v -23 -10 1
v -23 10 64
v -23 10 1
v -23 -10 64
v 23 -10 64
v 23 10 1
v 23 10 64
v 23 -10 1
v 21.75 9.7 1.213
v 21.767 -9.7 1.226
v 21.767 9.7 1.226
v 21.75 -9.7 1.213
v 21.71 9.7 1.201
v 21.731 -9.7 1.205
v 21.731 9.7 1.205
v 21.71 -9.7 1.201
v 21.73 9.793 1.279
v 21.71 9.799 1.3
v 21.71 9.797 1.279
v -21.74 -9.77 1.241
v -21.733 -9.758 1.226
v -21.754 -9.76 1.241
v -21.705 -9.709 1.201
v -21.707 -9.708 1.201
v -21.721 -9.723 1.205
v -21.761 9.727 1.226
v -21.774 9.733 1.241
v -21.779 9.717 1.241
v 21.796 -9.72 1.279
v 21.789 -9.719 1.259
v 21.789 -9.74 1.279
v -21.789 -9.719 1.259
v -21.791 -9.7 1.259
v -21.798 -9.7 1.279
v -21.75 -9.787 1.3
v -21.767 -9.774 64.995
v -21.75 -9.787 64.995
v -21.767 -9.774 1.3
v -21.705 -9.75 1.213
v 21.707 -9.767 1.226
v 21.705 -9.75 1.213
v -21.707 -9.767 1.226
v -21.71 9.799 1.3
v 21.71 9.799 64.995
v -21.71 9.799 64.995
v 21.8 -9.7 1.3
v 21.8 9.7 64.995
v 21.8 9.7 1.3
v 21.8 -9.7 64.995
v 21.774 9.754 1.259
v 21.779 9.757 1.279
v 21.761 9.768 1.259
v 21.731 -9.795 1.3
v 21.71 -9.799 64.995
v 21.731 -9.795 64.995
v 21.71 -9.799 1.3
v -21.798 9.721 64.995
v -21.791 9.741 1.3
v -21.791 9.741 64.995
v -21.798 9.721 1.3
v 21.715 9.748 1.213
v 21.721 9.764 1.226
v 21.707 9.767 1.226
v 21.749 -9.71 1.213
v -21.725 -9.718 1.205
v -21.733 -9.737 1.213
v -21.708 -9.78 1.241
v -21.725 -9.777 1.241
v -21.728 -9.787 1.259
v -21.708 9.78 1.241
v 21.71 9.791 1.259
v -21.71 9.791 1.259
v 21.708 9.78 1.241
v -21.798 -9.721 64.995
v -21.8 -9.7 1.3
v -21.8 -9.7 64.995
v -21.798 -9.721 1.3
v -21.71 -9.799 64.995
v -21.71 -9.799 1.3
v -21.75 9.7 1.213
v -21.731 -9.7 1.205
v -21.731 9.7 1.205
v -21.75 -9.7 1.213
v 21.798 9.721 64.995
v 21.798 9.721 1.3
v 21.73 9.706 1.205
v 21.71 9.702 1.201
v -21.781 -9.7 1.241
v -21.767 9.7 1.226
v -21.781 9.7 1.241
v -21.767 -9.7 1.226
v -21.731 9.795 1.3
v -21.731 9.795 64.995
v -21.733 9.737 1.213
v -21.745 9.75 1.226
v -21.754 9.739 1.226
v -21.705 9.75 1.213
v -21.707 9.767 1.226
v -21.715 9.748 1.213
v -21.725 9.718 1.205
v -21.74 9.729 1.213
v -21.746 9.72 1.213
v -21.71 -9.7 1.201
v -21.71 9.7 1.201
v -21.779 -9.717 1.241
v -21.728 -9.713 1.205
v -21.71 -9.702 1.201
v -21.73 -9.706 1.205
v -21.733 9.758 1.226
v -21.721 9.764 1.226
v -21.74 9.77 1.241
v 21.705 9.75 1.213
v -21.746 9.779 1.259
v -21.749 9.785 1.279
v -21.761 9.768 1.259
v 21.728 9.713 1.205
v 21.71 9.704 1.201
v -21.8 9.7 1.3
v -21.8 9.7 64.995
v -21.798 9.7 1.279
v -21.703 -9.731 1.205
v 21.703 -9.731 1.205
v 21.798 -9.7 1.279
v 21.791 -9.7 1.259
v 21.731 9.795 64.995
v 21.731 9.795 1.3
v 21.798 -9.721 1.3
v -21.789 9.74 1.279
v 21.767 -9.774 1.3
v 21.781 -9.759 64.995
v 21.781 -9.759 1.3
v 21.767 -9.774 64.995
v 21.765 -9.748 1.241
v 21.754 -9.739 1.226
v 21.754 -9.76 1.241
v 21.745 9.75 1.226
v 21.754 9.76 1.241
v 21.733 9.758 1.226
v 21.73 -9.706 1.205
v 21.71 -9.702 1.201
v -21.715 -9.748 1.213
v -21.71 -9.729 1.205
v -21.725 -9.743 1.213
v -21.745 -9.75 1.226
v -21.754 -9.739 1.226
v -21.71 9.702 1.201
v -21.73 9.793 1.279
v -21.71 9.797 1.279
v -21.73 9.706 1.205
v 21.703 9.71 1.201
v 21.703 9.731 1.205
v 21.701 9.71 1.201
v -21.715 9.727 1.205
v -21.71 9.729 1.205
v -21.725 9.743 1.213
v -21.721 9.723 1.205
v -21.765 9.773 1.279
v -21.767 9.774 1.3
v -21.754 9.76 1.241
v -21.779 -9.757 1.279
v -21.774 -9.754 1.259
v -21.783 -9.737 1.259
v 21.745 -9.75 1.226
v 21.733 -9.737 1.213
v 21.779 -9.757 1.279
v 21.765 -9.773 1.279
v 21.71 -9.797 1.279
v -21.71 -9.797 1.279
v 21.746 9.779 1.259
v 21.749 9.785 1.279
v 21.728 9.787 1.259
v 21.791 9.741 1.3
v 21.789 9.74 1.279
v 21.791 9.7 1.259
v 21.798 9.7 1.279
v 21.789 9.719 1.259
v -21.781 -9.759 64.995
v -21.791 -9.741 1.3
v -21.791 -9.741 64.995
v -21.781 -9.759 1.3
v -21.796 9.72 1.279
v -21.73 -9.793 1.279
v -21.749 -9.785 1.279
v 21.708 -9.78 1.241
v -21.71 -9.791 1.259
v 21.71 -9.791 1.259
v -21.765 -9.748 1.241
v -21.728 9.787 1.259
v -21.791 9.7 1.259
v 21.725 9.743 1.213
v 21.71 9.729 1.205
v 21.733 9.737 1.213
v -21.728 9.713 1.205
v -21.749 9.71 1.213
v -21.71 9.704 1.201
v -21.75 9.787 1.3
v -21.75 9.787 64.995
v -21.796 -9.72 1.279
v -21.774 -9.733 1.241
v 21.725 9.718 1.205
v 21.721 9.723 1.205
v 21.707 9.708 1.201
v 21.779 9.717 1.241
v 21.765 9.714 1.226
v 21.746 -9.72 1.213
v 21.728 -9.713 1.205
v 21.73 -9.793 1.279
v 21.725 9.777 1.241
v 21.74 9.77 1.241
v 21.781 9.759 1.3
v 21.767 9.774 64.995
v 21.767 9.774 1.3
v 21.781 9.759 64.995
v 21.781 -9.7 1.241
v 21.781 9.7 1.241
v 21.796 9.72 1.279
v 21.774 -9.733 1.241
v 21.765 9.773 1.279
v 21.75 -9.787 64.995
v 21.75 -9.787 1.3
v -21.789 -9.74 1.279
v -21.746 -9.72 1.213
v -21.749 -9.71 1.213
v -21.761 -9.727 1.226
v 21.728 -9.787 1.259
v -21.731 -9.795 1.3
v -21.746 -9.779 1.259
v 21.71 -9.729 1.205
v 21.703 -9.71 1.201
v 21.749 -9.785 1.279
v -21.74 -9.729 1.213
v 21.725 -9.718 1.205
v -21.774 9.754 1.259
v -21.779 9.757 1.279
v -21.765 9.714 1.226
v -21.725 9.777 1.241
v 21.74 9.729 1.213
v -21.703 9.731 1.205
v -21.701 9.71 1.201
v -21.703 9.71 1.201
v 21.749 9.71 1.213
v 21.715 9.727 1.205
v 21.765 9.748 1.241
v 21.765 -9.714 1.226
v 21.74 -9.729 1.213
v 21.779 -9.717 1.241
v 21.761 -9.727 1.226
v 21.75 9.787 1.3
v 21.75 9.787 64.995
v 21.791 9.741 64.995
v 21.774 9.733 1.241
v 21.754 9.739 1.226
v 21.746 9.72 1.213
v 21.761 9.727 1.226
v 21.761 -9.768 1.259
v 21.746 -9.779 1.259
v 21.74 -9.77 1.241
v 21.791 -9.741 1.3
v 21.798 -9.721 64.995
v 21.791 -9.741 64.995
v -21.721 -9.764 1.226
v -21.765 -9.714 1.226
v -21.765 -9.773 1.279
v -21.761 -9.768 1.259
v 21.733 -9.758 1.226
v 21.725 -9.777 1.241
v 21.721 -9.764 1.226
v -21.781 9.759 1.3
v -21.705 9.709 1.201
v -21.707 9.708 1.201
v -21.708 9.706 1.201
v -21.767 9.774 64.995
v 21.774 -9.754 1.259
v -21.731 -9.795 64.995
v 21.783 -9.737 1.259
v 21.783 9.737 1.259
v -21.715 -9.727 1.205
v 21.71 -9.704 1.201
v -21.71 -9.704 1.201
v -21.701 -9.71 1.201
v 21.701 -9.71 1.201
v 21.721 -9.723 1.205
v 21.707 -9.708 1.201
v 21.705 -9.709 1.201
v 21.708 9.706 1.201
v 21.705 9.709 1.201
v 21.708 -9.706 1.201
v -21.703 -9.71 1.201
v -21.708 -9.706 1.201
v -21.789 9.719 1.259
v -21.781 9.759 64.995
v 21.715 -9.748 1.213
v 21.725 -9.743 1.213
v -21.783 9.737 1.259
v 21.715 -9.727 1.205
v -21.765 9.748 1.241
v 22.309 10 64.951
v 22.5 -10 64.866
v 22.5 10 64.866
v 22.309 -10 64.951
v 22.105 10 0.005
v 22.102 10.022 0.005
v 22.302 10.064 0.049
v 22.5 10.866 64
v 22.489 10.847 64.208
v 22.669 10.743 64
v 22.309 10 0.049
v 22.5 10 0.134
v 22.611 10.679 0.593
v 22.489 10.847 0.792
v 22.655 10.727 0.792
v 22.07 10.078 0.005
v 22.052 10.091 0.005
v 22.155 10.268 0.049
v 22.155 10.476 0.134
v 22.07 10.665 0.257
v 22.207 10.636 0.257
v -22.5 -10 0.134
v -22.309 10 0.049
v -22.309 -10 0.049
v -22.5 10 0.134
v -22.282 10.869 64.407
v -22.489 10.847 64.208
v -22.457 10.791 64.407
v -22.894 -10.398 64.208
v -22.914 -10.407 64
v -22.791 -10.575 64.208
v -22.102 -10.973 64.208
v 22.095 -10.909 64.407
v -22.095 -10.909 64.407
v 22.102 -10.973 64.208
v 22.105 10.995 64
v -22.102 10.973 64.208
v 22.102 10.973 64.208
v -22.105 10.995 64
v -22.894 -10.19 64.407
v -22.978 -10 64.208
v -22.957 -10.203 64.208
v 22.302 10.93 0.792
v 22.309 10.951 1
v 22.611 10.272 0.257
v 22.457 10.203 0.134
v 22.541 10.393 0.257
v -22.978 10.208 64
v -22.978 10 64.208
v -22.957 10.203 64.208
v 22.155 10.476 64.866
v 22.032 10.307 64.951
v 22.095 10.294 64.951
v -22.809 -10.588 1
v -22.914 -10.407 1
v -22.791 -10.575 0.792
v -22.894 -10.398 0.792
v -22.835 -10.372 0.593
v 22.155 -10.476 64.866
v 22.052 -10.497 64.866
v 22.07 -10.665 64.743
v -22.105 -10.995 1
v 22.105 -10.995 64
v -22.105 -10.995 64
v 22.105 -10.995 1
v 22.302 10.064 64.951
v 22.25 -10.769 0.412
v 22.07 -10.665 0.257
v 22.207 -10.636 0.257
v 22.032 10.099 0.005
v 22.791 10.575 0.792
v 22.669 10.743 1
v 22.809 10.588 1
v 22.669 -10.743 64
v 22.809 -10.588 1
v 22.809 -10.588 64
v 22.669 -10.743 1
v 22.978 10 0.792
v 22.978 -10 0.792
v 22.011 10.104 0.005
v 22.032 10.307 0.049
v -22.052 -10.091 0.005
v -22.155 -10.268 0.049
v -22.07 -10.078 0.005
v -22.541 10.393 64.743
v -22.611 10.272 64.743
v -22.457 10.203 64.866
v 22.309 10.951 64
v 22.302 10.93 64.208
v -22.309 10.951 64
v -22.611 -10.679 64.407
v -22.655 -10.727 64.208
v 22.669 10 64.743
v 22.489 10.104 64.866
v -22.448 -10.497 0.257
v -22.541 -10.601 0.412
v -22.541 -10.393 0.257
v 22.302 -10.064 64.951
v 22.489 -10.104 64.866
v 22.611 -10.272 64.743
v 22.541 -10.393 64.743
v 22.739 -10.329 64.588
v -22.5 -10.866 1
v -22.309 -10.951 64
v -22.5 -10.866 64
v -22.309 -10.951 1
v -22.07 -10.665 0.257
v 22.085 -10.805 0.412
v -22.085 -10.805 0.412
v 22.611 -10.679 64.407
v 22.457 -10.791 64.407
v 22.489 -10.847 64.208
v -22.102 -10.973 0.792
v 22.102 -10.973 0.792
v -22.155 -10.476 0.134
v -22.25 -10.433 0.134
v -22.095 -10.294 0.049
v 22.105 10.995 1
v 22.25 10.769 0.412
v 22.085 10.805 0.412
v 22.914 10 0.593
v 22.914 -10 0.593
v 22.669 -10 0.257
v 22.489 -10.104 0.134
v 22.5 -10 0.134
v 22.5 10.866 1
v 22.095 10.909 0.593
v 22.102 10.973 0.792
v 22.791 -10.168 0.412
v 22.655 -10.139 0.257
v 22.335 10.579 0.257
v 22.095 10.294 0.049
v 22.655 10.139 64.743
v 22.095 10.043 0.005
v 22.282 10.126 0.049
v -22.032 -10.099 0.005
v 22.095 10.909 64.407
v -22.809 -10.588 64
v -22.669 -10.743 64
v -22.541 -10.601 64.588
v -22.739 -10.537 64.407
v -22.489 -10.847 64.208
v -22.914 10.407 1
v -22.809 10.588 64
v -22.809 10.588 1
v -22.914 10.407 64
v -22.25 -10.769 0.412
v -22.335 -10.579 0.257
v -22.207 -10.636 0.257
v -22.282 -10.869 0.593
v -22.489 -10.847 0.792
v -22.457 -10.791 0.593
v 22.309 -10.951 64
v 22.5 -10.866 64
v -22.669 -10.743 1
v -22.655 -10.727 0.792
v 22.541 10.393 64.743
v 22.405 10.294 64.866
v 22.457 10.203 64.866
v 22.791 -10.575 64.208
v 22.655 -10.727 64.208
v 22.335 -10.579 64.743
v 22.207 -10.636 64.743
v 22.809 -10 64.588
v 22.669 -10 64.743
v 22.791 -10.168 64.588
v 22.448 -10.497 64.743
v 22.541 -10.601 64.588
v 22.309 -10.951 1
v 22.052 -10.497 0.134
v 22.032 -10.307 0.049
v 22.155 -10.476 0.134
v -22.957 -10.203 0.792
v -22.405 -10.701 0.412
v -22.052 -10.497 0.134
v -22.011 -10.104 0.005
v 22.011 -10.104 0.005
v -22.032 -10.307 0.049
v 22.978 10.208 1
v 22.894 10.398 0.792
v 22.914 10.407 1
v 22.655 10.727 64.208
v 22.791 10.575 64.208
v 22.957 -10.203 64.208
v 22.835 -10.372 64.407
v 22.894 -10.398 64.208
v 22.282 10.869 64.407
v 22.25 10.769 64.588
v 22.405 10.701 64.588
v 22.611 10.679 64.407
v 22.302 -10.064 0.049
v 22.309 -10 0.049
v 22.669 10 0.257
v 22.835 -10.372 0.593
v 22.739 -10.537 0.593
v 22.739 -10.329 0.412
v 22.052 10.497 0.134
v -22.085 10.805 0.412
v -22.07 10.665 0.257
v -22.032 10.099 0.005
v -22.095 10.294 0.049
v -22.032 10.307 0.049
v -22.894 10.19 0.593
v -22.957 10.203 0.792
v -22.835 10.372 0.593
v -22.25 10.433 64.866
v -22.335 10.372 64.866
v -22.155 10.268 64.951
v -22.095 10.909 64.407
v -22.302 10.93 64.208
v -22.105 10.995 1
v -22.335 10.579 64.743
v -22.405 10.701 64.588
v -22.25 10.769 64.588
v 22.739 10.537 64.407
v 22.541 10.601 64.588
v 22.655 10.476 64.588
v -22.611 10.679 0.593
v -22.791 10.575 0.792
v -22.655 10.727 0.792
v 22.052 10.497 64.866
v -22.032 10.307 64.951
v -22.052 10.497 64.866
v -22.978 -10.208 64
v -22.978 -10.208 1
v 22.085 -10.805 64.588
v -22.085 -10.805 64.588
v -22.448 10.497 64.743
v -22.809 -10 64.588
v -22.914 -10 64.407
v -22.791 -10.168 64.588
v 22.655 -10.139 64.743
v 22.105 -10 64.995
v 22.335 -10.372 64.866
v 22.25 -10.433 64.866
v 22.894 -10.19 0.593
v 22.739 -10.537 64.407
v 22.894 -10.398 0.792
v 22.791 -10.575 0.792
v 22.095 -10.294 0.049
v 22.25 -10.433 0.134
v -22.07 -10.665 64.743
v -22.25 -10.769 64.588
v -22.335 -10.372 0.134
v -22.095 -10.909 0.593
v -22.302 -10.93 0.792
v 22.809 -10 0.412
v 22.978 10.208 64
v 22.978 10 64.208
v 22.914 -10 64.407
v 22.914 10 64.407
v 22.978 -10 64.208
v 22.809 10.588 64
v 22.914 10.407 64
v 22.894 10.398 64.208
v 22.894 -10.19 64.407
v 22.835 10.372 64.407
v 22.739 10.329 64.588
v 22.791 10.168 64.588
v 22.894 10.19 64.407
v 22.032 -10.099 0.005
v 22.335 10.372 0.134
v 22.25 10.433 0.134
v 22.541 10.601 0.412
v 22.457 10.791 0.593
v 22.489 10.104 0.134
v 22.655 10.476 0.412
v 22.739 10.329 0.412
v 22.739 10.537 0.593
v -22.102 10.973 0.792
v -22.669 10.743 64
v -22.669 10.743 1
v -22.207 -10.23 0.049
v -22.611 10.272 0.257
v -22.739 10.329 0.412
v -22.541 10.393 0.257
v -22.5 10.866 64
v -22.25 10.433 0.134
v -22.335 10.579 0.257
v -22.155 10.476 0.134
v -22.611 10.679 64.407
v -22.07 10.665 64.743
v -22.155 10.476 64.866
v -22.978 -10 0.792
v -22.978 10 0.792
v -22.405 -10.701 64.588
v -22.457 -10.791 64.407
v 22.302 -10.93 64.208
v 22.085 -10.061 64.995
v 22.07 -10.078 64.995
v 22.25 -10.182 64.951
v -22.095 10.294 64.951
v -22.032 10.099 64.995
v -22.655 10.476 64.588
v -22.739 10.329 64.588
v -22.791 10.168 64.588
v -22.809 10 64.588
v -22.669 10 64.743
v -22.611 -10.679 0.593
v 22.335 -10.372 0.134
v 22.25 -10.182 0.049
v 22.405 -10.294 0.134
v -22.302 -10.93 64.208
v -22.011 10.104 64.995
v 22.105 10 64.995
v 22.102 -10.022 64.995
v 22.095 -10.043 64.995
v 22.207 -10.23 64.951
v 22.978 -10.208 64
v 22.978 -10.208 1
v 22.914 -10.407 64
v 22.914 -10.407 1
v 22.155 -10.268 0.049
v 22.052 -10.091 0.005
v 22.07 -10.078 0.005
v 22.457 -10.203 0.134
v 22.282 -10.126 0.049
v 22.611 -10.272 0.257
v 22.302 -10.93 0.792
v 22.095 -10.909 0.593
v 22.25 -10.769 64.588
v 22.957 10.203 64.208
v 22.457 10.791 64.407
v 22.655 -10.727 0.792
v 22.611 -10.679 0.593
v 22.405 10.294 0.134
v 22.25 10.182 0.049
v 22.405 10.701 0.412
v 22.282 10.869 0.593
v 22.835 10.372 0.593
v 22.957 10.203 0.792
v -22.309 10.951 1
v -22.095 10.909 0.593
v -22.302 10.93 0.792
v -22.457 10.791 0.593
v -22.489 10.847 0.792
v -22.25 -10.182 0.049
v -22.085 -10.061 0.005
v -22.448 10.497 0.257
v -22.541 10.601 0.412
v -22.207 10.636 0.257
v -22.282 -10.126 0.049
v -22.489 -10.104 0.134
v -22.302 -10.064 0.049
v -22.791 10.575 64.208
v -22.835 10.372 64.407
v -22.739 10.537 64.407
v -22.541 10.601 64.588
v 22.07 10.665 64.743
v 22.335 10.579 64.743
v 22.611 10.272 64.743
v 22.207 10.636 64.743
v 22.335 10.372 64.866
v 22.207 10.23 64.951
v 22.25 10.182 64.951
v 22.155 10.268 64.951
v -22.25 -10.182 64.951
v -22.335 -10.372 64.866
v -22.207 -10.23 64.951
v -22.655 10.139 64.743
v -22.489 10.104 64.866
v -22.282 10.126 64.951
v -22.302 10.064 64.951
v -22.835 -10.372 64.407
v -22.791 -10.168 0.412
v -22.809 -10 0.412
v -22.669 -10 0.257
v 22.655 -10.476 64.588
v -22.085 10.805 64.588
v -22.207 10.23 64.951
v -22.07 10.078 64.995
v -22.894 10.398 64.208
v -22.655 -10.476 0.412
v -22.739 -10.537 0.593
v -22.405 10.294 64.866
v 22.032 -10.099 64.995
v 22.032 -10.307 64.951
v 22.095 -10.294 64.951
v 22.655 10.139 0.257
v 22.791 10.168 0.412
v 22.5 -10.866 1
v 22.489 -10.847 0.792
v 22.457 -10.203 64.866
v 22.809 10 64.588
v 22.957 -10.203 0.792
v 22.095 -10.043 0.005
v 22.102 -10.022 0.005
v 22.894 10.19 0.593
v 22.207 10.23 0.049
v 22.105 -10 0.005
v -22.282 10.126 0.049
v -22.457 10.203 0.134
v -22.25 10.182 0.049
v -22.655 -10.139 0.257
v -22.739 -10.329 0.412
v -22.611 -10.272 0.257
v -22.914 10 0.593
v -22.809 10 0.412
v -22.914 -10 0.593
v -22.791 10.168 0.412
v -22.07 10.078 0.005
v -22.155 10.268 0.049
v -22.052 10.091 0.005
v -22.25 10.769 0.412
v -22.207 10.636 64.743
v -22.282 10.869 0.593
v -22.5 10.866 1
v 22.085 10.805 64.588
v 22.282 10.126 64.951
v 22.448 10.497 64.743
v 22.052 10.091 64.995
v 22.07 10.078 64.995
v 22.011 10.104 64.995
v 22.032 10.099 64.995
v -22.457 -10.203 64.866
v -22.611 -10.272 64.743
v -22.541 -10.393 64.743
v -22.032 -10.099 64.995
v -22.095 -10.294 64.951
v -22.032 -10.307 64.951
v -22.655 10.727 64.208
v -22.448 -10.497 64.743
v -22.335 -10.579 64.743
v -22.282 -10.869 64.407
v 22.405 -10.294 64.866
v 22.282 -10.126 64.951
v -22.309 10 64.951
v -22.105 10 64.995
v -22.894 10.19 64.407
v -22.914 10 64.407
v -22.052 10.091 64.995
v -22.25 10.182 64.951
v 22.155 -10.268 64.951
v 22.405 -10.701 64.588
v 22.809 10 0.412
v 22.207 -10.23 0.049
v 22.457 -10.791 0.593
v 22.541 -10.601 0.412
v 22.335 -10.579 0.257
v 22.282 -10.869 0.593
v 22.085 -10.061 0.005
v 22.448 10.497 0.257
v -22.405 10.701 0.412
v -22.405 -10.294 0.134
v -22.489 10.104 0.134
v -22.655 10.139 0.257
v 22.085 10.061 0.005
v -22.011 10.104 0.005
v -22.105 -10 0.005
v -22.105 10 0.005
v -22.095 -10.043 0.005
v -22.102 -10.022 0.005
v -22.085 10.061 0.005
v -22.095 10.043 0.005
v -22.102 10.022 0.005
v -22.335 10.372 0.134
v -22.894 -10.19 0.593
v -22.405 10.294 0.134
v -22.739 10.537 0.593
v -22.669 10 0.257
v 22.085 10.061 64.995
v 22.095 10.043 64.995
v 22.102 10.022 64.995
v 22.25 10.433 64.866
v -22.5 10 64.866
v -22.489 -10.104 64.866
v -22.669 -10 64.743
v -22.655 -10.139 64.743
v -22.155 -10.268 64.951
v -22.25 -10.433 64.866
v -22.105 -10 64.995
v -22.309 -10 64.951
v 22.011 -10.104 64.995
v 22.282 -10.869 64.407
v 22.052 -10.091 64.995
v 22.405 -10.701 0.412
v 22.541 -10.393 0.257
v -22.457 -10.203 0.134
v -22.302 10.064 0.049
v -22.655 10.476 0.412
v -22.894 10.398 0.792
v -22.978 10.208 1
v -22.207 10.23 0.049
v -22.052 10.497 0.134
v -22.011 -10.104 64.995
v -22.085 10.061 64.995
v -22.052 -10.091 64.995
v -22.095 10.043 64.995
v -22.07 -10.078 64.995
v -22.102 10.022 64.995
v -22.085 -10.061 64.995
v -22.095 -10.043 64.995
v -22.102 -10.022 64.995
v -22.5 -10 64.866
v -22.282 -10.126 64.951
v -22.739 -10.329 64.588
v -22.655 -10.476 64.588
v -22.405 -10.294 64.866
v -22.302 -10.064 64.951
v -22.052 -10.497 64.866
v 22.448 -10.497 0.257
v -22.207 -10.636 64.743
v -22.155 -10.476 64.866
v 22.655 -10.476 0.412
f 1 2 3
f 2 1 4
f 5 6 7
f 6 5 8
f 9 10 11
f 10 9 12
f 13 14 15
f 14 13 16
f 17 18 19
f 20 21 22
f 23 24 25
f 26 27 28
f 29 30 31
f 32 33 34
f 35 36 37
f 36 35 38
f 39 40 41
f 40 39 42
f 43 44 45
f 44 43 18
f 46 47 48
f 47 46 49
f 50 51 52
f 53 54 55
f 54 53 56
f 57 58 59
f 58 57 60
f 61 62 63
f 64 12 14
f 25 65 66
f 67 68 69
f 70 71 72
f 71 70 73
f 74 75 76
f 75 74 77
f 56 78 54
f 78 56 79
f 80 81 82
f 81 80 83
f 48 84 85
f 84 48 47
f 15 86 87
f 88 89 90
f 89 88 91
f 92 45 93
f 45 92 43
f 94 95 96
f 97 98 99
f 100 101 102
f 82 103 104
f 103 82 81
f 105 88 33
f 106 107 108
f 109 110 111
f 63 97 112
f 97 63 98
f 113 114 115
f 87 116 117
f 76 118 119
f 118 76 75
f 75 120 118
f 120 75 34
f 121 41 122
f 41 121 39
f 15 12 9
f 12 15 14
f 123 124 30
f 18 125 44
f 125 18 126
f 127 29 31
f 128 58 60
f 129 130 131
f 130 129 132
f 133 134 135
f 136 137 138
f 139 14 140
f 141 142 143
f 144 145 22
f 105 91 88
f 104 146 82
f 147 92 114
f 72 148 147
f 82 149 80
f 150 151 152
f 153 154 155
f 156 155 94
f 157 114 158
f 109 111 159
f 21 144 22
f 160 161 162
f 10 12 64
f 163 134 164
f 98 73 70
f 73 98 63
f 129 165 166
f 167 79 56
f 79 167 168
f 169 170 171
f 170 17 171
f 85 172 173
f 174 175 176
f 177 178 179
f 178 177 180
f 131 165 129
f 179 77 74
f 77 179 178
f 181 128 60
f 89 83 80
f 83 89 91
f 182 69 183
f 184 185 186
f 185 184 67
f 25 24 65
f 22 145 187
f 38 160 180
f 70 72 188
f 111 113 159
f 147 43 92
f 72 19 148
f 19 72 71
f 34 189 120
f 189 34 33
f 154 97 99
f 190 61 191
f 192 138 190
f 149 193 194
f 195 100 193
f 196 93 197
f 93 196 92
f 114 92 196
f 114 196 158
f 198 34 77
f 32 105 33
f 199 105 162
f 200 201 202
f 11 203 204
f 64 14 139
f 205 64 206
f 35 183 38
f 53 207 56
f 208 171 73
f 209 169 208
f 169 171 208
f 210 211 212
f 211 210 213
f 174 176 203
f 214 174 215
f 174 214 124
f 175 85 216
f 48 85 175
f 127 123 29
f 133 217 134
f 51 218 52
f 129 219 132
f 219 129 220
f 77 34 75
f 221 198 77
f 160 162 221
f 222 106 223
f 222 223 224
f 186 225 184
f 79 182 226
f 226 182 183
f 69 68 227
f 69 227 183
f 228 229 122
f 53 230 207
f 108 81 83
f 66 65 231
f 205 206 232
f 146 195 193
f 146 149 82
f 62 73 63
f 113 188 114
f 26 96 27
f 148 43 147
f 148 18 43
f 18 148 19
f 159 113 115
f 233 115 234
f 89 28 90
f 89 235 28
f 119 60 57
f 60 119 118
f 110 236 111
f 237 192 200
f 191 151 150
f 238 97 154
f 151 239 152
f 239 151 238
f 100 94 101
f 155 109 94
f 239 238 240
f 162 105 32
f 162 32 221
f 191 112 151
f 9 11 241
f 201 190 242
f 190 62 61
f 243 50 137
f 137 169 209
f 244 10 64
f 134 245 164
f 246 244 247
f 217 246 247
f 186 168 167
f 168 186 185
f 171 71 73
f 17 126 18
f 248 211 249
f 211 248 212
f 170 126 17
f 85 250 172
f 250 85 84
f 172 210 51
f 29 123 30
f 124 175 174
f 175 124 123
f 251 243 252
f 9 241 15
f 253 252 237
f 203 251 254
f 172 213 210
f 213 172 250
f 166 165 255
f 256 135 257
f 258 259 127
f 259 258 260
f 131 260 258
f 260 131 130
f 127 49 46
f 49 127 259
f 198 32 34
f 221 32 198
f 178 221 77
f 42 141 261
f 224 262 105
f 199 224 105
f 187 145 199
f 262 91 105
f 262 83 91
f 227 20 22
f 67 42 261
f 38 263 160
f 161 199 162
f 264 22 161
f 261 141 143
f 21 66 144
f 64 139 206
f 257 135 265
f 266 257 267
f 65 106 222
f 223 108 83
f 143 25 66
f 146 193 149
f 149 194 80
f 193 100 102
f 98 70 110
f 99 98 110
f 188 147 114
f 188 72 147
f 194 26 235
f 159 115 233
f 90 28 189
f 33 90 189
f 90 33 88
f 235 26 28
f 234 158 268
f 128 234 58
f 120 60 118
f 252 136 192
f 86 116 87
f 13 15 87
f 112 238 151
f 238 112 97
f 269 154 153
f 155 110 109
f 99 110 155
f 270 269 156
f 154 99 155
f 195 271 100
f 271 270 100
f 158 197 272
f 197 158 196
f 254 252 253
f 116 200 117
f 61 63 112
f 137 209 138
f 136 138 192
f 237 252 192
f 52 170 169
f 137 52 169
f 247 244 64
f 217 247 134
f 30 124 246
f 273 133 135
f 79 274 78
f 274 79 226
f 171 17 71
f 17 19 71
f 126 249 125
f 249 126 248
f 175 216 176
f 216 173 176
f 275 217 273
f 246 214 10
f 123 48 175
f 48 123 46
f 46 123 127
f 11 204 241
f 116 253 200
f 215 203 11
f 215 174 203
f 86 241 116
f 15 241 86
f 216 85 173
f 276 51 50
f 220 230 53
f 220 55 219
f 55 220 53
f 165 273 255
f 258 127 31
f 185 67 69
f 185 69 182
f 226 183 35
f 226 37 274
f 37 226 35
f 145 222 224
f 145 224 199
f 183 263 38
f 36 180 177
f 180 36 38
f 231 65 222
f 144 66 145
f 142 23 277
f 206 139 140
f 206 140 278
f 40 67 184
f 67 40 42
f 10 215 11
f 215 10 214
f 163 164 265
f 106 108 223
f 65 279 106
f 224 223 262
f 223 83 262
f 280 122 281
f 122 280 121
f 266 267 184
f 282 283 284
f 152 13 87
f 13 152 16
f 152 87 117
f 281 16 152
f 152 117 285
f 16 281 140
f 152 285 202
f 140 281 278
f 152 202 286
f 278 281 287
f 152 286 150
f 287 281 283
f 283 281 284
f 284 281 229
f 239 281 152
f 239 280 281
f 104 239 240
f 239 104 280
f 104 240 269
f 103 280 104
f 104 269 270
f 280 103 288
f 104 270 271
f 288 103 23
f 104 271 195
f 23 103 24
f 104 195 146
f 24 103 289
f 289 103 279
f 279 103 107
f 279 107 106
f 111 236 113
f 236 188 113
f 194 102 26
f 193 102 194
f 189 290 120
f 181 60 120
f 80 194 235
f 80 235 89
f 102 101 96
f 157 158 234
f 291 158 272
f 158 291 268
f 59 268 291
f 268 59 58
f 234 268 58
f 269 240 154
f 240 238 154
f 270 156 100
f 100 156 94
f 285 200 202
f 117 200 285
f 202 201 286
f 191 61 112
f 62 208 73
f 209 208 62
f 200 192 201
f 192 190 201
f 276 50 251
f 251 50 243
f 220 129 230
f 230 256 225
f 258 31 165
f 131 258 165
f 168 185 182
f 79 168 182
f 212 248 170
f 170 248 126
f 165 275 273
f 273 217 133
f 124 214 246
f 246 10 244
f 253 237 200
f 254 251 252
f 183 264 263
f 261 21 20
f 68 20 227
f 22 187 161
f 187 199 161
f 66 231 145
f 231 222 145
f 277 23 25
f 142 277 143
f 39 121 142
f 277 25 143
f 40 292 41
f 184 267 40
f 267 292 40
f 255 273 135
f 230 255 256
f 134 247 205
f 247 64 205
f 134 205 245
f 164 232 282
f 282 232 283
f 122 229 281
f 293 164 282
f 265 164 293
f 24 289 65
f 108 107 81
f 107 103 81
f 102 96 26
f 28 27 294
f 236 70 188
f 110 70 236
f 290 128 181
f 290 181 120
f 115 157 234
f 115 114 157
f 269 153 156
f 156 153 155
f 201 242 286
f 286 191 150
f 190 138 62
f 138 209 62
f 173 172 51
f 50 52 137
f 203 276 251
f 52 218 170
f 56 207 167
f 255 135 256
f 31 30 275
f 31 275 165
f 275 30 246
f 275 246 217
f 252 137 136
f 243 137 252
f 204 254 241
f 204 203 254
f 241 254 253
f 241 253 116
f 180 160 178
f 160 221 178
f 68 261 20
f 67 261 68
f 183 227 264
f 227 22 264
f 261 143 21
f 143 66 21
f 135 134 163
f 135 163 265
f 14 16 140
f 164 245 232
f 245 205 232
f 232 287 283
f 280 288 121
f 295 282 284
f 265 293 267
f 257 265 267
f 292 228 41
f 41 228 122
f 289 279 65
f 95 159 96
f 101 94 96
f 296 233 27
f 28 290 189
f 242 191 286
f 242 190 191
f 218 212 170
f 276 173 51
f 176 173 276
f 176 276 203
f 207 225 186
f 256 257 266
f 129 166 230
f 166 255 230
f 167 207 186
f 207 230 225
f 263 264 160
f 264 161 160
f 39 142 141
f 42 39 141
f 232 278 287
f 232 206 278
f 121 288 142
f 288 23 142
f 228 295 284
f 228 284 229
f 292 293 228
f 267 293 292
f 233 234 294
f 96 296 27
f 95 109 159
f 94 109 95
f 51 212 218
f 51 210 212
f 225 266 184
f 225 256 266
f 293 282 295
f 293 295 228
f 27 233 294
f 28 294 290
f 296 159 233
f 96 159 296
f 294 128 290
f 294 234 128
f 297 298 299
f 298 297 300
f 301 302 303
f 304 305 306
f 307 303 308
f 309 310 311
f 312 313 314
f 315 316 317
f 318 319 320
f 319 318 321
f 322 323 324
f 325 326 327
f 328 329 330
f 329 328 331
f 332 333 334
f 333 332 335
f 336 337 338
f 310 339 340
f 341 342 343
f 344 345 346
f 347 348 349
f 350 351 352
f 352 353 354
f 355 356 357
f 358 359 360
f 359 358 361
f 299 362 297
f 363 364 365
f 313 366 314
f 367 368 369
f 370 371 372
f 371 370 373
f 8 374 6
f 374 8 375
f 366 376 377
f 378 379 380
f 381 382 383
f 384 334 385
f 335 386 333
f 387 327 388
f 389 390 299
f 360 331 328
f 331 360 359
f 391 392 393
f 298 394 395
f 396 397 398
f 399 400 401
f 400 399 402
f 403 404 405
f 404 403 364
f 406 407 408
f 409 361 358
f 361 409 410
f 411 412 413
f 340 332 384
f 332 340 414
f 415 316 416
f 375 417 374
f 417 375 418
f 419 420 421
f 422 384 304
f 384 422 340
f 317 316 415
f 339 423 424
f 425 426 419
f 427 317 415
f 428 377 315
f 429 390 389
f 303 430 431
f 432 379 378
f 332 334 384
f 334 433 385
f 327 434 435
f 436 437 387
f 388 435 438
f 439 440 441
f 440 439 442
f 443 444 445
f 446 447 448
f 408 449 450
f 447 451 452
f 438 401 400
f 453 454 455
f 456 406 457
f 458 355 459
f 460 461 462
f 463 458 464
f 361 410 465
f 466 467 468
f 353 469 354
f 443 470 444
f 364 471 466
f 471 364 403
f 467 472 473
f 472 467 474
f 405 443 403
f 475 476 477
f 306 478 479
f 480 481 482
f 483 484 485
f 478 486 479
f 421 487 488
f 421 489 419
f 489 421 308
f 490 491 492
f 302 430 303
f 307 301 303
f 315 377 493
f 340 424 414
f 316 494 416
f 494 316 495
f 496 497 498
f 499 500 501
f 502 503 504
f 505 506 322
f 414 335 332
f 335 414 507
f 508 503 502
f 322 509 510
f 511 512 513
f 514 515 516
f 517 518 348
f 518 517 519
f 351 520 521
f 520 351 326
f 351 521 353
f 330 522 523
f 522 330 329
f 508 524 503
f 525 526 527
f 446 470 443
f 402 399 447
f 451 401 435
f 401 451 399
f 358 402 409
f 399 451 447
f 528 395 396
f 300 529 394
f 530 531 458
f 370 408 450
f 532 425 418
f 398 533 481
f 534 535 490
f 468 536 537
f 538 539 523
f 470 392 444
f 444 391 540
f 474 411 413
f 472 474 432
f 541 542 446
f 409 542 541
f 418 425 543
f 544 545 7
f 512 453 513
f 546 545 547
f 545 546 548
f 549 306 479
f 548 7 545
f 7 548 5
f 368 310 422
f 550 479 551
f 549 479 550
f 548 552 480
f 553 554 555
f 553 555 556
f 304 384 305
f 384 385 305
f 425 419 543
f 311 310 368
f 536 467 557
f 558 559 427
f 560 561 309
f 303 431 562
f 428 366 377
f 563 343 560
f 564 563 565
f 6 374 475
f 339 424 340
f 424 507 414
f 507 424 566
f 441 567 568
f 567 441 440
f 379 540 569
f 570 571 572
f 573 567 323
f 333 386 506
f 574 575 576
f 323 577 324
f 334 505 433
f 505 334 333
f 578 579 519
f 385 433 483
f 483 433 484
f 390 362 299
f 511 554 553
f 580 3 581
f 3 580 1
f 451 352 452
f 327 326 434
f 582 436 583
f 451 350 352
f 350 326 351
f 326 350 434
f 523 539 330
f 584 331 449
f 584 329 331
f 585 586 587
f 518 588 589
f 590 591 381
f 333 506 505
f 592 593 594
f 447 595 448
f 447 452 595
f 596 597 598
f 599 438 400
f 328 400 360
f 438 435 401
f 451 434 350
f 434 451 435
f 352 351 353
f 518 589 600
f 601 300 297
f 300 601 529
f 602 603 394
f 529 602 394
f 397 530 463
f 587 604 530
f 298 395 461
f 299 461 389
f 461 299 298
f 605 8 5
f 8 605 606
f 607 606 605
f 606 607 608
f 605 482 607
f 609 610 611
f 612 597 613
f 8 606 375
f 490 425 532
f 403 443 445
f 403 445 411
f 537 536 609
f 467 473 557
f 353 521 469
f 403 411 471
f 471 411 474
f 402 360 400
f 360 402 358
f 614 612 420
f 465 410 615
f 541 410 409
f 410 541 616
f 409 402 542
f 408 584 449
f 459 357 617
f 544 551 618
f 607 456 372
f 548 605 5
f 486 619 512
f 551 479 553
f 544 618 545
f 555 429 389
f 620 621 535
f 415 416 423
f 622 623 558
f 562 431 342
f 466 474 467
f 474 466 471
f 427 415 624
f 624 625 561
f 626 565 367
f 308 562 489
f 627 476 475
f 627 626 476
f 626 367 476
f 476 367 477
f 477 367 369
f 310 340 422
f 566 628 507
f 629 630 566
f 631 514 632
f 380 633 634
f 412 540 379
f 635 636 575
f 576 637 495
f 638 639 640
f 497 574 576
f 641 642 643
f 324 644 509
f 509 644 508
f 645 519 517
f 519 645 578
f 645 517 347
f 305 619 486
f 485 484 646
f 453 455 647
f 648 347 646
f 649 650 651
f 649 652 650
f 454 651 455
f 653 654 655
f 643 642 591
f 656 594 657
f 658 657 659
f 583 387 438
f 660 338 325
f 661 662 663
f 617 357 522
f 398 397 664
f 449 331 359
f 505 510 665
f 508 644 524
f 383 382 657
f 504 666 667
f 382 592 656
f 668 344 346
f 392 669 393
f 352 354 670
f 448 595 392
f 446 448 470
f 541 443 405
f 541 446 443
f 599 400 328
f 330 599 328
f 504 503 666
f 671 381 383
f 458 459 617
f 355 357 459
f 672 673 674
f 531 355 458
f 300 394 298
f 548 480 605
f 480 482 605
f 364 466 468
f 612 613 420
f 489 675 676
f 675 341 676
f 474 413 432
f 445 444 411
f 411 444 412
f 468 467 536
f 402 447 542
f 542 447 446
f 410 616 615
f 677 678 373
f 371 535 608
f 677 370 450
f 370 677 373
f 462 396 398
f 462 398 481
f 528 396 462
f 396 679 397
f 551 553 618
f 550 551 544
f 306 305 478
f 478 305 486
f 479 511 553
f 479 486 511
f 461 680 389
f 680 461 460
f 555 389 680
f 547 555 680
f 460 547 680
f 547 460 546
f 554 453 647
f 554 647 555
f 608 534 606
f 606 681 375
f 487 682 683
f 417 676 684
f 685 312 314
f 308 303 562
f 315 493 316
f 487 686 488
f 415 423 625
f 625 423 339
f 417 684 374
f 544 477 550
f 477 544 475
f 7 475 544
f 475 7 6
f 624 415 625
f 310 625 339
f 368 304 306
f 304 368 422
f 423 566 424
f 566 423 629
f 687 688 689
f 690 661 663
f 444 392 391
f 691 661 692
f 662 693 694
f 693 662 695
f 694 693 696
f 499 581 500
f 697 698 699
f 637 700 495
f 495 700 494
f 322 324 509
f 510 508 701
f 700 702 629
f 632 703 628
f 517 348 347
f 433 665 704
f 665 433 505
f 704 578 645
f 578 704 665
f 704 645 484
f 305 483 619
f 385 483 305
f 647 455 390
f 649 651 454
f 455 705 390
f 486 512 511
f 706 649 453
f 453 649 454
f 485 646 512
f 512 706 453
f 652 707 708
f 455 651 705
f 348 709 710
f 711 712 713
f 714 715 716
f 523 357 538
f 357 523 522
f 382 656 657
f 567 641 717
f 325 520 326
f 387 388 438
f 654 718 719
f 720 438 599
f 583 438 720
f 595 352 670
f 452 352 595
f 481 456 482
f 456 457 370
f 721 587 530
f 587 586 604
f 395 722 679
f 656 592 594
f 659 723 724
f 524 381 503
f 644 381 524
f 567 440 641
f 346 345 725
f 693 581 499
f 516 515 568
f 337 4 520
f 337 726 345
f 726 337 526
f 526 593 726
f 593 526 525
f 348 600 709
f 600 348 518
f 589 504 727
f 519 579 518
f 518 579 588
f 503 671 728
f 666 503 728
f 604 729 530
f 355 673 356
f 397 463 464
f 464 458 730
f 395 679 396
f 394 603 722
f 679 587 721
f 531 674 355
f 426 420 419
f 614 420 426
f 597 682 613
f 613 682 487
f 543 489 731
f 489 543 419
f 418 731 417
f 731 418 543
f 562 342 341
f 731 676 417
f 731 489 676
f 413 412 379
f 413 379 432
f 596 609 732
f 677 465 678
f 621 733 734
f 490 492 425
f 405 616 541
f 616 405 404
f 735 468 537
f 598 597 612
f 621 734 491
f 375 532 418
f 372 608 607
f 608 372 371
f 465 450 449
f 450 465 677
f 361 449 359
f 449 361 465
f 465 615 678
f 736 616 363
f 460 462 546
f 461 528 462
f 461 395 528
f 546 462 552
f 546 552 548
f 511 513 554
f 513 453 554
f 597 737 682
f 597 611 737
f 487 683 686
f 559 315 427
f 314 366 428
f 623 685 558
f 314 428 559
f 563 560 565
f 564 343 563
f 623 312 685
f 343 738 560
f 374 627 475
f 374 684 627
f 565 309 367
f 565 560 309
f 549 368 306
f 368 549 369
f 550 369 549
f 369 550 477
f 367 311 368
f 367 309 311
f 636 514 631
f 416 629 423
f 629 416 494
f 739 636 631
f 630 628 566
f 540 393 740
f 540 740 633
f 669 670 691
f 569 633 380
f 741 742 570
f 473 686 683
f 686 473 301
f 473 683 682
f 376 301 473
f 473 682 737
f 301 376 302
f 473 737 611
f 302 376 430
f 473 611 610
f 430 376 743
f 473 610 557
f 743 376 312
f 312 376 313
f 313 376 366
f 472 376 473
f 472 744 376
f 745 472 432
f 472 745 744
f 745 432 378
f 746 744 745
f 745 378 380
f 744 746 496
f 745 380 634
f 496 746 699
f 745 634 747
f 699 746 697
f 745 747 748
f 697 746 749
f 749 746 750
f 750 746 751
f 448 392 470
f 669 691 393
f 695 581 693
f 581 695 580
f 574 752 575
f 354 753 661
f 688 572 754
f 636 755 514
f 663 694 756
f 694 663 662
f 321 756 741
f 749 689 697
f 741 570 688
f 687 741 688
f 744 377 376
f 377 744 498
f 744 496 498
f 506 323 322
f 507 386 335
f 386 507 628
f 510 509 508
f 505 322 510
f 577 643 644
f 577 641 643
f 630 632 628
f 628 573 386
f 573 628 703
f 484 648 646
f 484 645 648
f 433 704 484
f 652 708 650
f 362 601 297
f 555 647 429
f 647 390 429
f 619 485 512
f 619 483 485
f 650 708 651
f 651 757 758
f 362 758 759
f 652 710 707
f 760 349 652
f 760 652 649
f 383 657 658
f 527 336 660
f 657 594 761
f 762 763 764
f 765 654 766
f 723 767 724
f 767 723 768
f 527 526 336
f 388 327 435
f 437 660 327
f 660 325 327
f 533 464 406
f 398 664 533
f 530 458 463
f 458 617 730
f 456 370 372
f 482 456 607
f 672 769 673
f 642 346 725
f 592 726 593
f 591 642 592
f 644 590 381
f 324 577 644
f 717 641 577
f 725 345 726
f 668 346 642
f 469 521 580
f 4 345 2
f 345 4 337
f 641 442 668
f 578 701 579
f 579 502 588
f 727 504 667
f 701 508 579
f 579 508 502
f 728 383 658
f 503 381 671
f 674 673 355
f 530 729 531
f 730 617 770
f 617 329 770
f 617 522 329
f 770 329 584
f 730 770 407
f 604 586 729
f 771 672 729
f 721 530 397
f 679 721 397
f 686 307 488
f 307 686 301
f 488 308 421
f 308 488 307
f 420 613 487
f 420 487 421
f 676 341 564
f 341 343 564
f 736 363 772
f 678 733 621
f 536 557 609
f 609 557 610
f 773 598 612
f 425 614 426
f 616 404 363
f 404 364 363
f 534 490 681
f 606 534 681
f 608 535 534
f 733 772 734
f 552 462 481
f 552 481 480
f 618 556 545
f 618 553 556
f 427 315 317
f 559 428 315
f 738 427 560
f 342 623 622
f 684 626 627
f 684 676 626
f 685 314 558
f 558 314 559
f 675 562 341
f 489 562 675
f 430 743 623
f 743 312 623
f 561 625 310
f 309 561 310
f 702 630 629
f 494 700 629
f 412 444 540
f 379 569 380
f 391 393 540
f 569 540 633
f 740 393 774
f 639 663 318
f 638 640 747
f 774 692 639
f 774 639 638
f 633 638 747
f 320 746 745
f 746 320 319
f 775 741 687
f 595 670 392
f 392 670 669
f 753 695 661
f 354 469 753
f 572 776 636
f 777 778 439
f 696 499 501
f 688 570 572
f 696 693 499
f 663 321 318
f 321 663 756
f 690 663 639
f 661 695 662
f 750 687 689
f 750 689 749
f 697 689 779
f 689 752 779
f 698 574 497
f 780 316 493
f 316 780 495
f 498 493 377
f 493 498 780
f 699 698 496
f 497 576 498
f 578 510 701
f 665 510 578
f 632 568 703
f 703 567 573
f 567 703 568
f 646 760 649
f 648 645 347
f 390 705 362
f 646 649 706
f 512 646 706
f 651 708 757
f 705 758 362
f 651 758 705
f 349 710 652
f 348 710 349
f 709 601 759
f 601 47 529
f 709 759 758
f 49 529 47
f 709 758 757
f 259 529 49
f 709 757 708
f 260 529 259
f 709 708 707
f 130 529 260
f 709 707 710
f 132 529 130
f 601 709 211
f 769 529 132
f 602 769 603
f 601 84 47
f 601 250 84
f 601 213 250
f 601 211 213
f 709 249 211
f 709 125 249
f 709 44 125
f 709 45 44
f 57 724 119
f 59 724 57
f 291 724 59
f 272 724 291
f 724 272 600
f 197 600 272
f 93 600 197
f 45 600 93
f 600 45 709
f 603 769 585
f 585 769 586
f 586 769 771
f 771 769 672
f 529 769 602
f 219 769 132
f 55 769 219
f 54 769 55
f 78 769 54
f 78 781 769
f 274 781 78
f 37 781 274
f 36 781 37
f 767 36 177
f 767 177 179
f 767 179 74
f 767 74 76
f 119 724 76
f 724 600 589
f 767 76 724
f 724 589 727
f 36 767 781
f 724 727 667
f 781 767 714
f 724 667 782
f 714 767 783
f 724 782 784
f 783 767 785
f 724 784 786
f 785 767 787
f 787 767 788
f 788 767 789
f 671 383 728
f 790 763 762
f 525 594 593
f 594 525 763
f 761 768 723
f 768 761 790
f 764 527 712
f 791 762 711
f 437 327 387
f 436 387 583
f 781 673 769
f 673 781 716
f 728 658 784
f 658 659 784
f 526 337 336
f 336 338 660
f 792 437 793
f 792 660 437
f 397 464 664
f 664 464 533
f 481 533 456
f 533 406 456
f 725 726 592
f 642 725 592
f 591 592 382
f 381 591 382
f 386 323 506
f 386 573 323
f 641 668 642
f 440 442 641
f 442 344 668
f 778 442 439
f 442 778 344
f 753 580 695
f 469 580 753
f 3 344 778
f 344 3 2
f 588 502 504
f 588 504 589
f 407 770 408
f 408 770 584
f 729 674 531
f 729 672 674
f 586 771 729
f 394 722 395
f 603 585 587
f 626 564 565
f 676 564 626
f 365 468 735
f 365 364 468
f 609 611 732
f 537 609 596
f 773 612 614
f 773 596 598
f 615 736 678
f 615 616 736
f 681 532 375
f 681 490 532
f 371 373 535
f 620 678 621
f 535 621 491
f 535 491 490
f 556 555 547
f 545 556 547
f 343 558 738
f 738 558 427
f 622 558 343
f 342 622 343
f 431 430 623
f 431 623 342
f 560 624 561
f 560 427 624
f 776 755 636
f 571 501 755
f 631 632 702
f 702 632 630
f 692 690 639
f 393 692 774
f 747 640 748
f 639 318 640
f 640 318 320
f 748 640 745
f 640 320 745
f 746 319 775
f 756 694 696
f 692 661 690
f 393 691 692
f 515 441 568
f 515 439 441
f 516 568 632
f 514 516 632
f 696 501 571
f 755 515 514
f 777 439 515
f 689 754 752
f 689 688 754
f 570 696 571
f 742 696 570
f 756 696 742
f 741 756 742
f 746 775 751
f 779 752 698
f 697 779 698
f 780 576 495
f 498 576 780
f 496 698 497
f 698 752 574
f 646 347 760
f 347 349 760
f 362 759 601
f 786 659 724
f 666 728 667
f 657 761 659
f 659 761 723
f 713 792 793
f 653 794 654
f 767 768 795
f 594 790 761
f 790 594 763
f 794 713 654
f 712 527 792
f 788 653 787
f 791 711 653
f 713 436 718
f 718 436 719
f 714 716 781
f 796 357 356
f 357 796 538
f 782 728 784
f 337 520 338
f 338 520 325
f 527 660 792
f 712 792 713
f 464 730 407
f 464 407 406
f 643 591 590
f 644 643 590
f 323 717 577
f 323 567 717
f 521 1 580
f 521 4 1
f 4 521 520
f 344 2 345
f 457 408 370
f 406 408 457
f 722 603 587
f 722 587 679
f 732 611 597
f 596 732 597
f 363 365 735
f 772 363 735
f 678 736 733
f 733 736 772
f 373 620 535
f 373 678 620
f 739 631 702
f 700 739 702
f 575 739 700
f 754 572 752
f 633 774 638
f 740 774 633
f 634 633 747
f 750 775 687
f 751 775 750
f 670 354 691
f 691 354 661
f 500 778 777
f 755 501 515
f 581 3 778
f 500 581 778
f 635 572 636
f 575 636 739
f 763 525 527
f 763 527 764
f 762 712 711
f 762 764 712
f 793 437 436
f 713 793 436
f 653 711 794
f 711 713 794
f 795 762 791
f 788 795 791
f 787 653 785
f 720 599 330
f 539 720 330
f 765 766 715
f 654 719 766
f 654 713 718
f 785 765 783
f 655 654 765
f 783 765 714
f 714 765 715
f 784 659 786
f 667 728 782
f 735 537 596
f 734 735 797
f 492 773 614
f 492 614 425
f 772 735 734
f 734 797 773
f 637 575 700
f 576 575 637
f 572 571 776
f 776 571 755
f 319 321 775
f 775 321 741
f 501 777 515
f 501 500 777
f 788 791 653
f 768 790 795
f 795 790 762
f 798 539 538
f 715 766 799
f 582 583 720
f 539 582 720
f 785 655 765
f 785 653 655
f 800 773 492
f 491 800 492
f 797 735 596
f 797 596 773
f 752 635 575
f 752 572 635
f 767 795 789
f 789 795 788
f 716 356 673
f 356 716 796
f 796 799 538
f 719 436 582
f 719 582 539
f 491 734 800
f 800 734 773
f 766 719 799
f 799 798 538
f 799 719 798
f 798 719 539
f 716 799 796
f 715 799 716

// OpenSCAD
$fn=30;

/* [Global] */

// Render
Objects = "LidlessBox"; // [Both, Box, Lid, LidlessBox]

// use the following syntax to add 1 or more internal x compartment lengths (mm)
x_sizes = [43.6];
// use the following syntax to add 1 or more internal y compartment widths (mm)
y_sizes = [19.6];
// Total height including Lid (If Lidless, this is the final height)
z_size = 65;

// Type of lid pattern
gPattern = "Fancy"; //  [Hex, Diamond, Web, Solid, Fancy]
// Tolerance
gTol = 0.3;
// Wall Thickness
gWT = 1.2;
// Curvature bottom
ipR = 0.1;

/* [Spider Web] */
// Amount of space from one ring or webs to the next
WebSpacing = 5;
// How many rings of webs, best of more than needed
WebStrands = 20;
// Thickness of the strands
WedThickness = 1.8;
// How many segments of web
WebWedges = 12;


/* [Hidden] */
/* Private variables */

// Check if we are in Lidless mode
isLidless = (Objects == "LidlessBox");

// Box Height
TotalZ = z_size;
LidH = 2.2;
RailThick = 1.4;
RailWidth = LidH + RailThick;

function SumList(list, start, end) = (start == end) ? 0 : list[start] + SumList(list, start+1, end);

// Box Length
TotalX = SumList(x_sizes,0,len(x_sizes)) + gWT*(len(x_sizes)+1);

// Box Width - If lidless, we don't need the extra width for the sliding rails
TotalY = isLidless ? 
    SumList(y_sizes,0,len(y_sizes)) + gWT*(len(y_sizes)+1) : 
    SumList(y_sizes,0,len(y_sizes)) + RailWidth*2 + gWT*(len(y_sizes)-1);

echo("Size: ",TotalX,TotalY);
    
// Height not counting the lid. If lidless, height is the full z_size.
AdjBoxHeight = isLidless ? TotalZ : TotalZ - LidH;

 module regular_polygon(order, r=1){
 	angles=[ for (i = [0:order-1]) i*(360/order) ];
 	coords=[ for (th=angles) [r*cos(th), r*sin(th)] ];
 	polygon(coords);
 }

module circle_lattice(ipX, ipY, Spacing=10, Walls=1.2)  {


   intersection() {
      square([ipX,ipY]); 
      union() {
	    for (x=[-Spacing:Spacing:ipX+Spacing]) {
           for (y=[-Spacing:Spacing:ipY+Spacing]){
	          difference()  {
			     translate([x+Spacing/2, y+Spacing/2]) circle(r=Spacing*0.75);
			     translate([x+Spacing/2, y+Spacing/2]) circle(r=(Spacing*0.75)-Walls);
		      }
           }   // end for y        
	    }  // end for x
      } // End union
   }
}


module diamond_lattice(ipX, ipY, DSize, WSize)  {

   lOffset = DSize + WSize;

	difference()  {
		square([ipX, ipY]);
		for (x=[0:lOffset:ipX]) {
            for (y=[0:lOffset:ipY]){
  			   translate([x, y])  regular_polygon(4, r=DSize/2);
			   translate([x+lOffset/2, y+lOffset/2]) regular_polygon(4, r=DSize/2);
		    }
        }        
	}
}

module hex_lattice(ipX, ipY, DSize, WSize)  {
    lXOffset = DSize + WSize;
    lYOffset = (DSize+WSize)/cos(30) * 1.5;

	difference()  {
		square([ipX, ipY]);
		for (x=[0:lXOffset:ipX]) {
            for (y=[0:lYOffset:ipY]){
  			   translate([x, y]) rotate([0,0,30]) regular_polygon(6, r=DSize/cos(30)/2);
			   translate([x+lXOffset/2, y+lYOffset/2]) rotate([0,0,30]) regular_polygon(6, r=DSize/cos(30)/2);
		    }
        }  
	}
}

// Make a star with X points
module star(radius, wedges)
{
	angle = 360 / wedges;
	difference() {
		circle(radius, $fn = wedges);
		for(i = [0:wedges - 1]) {
			rotate(angle / 2 + angle * i) translate([radius, 0, 0]) 
			    scale([0.8, 1, 1]) 
				    circle(radius * sin(angle / 2), $fn = 24);
		}
	}
}

module spider_web(ipWebSpacing, strands, ipThickness, wedges) 
{
	for(i = [0:strands - 1]) 
    {
        difference() {
            star(ipWebSpacing * i, wedges);
            offset(r = -ipThickness) star(ipWebSpacing * i, wedges);
        }
	}

	angle = 360 / wedges;
	for(i = [0:wedges - 1])
    {
		rotate(angle * i) translate([0, -ipThickness / 2, 0]) 
			square([ipWebSpacing * strands, ipThickness]);
	}    
}


module RCube(x,y,z,ipR=ipR) {
    translate([-x/2,-y/2,0]) hull(){
      translate([ipR,ipR,ipR]) sphere(ipR);
      translate([x-ipR,ipR,ipR]) sphere(ipR);
      translate([ipR,y-ipR,ipR]) sphere(ipR);
      translate([x-ipR,y-ipR,ipR]) sphere(ipR);
      translate([ipR,ipR,z-ipR]) sphere(ipR);
      translate([x-ipR,ipR,z-ipR]) sphere(ipR);
      translate([ipR,y-ipR,z-ipR]) sphere(ipR);
      translate([x-ipR,y-ipR,z-ipR]) sphere(ipR);
      }  
} 


module lid(ipPattern = "Hex", ipTol = 0.3){
  lAdjX = TotalX;
  lAdjY = TotalY-RailWidth*2-ipTol*2;  
  lAdjZ = LidH;
  CutX = lAdjX - 8;
  CutY = lAdjY - 8;
  lFingerX = 15;
  lFingerY = 16;  

  // main square with center removed for a pattern. 0.01 addition is a kludge to avoid a 2d surface remainging when substracting the lid from the box.
  difference() {
      translate([0,0,lAdjZ/2]) cube([lAdjX+0.01, lAdjY+0.01 , lAdjZ], center=true);

      translate([0,0,lAdjZ/2]) cube([CutX, CutY, lAdjZ], center = true);
      translate([TotalX/2-gWT/2,0,LidH/2])cube([gWT+0.01,TotalY-RailWidth,LidH],center=true);

     // make a slot for the latch can flex          
     translate([TotalX/2,TotalY/2-RailWidth-1.4,-1]) RCube(18,0.8,4,0.4);
     translate([TotalX/2,-TotalY/2+RailWidth+1.4,-1]) RCube(18,0.8,4,0.4);
  }
  
  // The Side triangles
  difference() {
    intersection () {
      union () {
          translate([-lAdjX/2,-lAdjY/2-LidH,LidH]) rotate([0,90,0]) linear_extrude(TotalX-2) polygon([[LidH,0],[LidH,LidH],[0,LidH]], paths=[[0,1,2]]);
          translate([-lAdjX/2,lAdjY/2,LidH]) rotate([0,90,0]) linear_extrude(TotalX-2) polygon([[0,0],[LidH,0],[LidH,LidH]], paths=[[0,1,2]]);
      }
      
      // check if this is real lid (ipTol>0) or negative lid (iptol = 0)
      // if real lid remove center for pattern and remove latches
      if (ipTol>0) 
         {cube([lAdjX, lAdjY + 2*LidH-0.2, lAdjZ*2], center=true);}
    }
       
    if (ipTol>0)
    {
        // cut out slots for the latch 
        translate([TotalX/2-7,lAdjY/2+RailWidth/2+ipTol,LidH/2]) scale([1.5,1,1]) rotate([0,0,45]) cube ([2+ipTol,2+ipTol,LidH+1],center=true);
          
        translate([TotalX/2-7,-lAdjY/2-RailWidth/2-ipTol,LidH/2]) scale([1.5,1,1]) rotate([0,0,45]) cube ([2+ipTol,2+ipTol,LidH+1],center=true);
  
        // trip the rail to ease going past the nub
        translate([TotalX/2,TotalY/2-LidH/2-ipTol,0]) cube([12,LidH,LidH*2],center=true); 
        translate([TotalX/2,-TotalY/2+LidH/2+ipTol,0]) cube([12,LidH,LidH*2],center=true); 
    }
    
  }
 
  // Finger slot
  difference () {
      translate([-CutX/2,-lFingerY/2,0]) cube([lFingerX, lFingerY, lAdjZ]); 
      translate([-CutX/2+lFingerX/2,0,20+LidH/2])sphere(20);     
  }


  // Solid top
  if (ipPattern == "Solid") 
      {   
       difference (){ 
          translate([-CutX/2,-CutY/2,0]) cube([CutX, CutY,   lAdjZ]);
          translate([-CutX/2,-lFingerY/2,0]) cube([lFingerX, lFingerY, lAdjZ]); 
      }
    }
    

  // Spiderweb top
  if (ipPattern == "Web") 
    {
       difference (){ 
         intersection () 
        {    
             linear_extrude(height = lAdjZ) spider_web(WebSpacing, WebStrands, WedThickness, WebWedges);  
              translate([-CutX/2,-CutY/2,0]) cube([CutX, CutY, LidH*2]); 
        }
          translate([-CutX/2,-lFingerY/2,0]) cube([lFingerX, lFingerY, lAdjZ]); 
      }
    }

  // Hex top
  if (ipPattern == "Hex") 
    {   
       difference (){ 
          translate([-CutX/2,-CutY/2,0]) linear_extrude(height = lAdjZ) hex_lattice(CutX,CutY,6,2);
          translate([-CutX/2,-lFingerY/2,0]) cube([lFingerX, lFingerY, lAdjZ]); 
      }
    }

  // Diamond top
  if (ipPattern == "Diamond") 
    {
      difference (){ 
        translate([-CutX/2,-CutY/2,0]) linear_extrude(height = lAdjZ) diamond_lattice(CutX,CutY,7,2);
        translate([-CutX/2,-lFingerY/2,0]) cube([lFingerX, lFingerY, lAdjZ]); 
      }
    }

  // fancy top
  if (ipPattern == "Fancy") 
    {
       echo(CutX,CutY);
      difference (){ 
        translate([-CutX/2,-CutY/2,0]) linear_extrude(height = lAdjZ) circle_lattice(CutX,CutY);
        translate([-CutX/2,-lFingerY/2,0]) cube([lFingerX, lFingerY, lAdjZ]); 
      }
    }

}


module box () {
//  Main Box
  difference() {    
    translate ([0,0,AdjBoxHeight/2]) cube([TotalX,TotalY,AdjBoxHeight], center = true);

    // Scope out compartment areas
    for(nX=[0:len(x_sizes)-1])
    {
      for(nY=[0:len(y_sizes)-1])
      {
          xOffset = SumList(x_sizes,0,nX) + gWT*(nX+1) + x_sizes[nX]/2 - TotalX/2;
          
          // If lidless, we start from a standard wall thickness. If lidded, we start from RailWidth.
          yStart = isLidless ? gWT : RailWidth;
          yOffset = SumList(y_sizes,0,nY) + yStart + gWT*nY + y_sizes[nY]/2 - TotalY/2;
          
          translate([xOffset,yOffset,gWT]) RCube(x_sizes[nX], y_sizes[nY] ,AdjBoxHeight+20);
      }
    }
  }

  // Only render rails, backstops, and latches if NOT LidlessBox
  if (!isLidless) {
      // top rails
      difference() {
         union() {
              translate([0,-TotalY/2+RailWidth/2,AdjBoxHeight+LidH/2]) cube([TotalX,RailWidth,LidH],center = true);  
              translate([0,TotalY/2-RailWidth/2,AdjBoxHeight+LidH/2]) cube([TotalX,RailWidth,LidH],center = true);
               }
           
          // Trim each rail top to a 45 degree angle     
          translate([0,-TotalY/2,AdjBoxHeight+RailWidth]) rotate([45,0,0]) cube([TotalX,RailWidth+0.7,RailWidth+0.7], center=true); 
          translate([0,TotalY/2,AdjBoxHeight+RailWidth])  rotate([45,0,0]) cube([TotalX,RailWidth+0.7,RailWidth+0.7], center=true);  

          // Substract the lid from the rails
          translate([0,0,AdjBoxHeight]) lid(ipPattern = "Solid",ipTol =0);      
      }  
      
       // add backstop
       translate([TotalX/2-1/2,0,TotalZ-LidH/2])cube([1,TotalY-RailWidth,LidH],center=true);
      
      // create the latches 
        translate([TotalX/2-7,TotalY/2-0.1-RailWidth/2,TotalZ-LidH/2]) scale([1.5,1,1]) difference(){
          rotate([0,0,45]) cube ([2,2,LidH+1],center=true);
          translate([0,2,0]) cube ([4,4,LidH+2],center=true);
          translate([0,-2,0])cube([2,2,LidH+2], center=true);
          }  
        translate([TotalX/2-7,-TotalY/2+0.1+RailWidth/2,TotalZ-LidH/2]) scale([1.5,1,1]) difference(){
          rotate([0,0,45]) cube ([2,2,LidH+1],center=true);
          translate([0,-2,0]) cube ([4,4,LidH+2],center=true);
          translate([0,2,0])cube([2,2,LidH+2], center=true);
          }
  }
} 

// Production Box
if ((Objects == "Both") || (Objects == "Box") || (Objects == "LidlessBox")){
  intersection() {
     box();
     // Final container curvature cut
     RCube(TotalX,TotalY,AdjBoxHeight + (isLidless ? 0 : LidH),1);
  }
}

// Production Lid
if ((Objects == "Both")  || (Objects == "Lid")){
  translate([-TotalX - 10,0,0]) lid(ipPattern = gPattern, ipTol = gTol);
}
